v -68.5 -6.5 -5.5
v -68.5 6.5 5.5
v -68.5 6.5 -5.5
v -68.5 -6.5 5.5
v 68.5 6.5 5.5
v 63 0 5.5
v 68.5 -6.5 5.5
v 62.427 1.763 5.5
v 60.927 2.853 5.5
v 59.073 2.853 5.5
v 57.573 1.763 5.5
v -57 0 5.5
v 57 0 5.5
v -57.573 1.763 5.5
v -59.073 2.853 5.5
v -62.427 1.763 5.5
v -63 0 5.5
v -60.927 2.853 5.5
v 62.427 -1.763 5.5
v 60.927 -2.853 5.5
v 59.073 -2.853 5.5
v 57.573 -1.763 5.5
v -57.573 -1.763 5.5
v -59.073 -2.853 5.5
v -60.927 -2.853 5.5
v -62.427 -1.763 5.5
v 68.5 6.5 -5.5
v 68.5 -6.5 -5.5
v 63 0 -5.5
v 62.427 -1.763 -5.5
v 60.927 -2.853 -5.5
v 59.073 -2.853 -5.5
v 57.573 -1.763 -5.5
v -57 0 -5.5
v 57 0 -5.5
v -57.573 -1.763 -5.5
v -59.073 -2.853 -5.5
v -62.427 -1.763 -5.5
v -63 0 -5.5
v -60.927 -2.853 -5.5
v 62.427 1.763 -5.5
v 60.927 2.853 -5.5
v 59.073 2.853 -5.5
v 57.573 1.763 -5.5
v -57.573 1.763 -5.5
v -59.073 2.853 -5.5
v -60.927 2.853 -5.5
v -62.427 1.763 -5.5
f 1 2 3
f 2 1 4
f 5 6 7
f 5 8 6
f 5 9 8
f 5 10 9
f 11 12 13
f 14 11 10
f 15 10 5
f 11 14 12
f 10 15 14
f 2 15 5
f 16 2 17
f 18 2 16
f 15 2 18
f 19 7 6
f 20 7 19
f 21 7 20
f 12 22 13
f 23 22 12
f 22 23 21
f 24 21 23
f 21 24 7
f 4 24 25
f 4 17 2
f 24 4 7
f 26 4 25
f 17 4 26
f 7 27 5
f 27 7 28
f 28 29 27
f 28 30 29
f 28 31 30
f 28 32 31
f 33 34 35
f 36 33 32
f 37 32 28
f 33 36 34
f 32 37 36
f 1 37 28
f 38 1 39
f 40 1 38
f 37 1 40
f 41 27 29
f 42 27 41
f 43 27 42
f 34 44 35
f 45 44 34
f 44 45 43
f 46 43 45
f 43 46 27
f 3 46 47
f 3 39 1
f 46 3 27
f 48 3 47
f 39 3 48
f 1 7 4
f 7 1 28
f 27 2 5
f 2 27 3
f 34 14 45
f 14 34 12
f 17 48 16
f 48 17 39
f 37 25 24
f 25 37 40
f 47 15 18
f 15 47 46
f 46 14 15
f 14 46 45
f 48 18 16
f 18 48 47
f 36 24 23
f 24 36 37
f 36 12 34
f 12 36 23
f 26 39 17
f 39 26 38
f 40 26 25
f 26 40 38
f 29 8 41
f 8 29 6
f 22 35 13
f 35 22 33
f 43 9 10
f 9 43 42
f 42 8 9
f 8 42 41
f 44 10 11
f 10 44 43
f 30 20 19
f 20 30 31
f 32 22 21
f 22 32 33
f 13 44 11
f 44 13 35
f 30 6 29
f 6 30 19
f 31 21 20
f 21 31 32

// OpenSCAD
difference() 
{
    cube ([117+20,13,11], center=true);
    translate([-60, 0,0])
        cylinder(h=50, d=6, center=true);
    translate([60, 0,0])
        cylinder(h=50, d=6, center=true);
}
//    cube ([117,11,11], center=true);
